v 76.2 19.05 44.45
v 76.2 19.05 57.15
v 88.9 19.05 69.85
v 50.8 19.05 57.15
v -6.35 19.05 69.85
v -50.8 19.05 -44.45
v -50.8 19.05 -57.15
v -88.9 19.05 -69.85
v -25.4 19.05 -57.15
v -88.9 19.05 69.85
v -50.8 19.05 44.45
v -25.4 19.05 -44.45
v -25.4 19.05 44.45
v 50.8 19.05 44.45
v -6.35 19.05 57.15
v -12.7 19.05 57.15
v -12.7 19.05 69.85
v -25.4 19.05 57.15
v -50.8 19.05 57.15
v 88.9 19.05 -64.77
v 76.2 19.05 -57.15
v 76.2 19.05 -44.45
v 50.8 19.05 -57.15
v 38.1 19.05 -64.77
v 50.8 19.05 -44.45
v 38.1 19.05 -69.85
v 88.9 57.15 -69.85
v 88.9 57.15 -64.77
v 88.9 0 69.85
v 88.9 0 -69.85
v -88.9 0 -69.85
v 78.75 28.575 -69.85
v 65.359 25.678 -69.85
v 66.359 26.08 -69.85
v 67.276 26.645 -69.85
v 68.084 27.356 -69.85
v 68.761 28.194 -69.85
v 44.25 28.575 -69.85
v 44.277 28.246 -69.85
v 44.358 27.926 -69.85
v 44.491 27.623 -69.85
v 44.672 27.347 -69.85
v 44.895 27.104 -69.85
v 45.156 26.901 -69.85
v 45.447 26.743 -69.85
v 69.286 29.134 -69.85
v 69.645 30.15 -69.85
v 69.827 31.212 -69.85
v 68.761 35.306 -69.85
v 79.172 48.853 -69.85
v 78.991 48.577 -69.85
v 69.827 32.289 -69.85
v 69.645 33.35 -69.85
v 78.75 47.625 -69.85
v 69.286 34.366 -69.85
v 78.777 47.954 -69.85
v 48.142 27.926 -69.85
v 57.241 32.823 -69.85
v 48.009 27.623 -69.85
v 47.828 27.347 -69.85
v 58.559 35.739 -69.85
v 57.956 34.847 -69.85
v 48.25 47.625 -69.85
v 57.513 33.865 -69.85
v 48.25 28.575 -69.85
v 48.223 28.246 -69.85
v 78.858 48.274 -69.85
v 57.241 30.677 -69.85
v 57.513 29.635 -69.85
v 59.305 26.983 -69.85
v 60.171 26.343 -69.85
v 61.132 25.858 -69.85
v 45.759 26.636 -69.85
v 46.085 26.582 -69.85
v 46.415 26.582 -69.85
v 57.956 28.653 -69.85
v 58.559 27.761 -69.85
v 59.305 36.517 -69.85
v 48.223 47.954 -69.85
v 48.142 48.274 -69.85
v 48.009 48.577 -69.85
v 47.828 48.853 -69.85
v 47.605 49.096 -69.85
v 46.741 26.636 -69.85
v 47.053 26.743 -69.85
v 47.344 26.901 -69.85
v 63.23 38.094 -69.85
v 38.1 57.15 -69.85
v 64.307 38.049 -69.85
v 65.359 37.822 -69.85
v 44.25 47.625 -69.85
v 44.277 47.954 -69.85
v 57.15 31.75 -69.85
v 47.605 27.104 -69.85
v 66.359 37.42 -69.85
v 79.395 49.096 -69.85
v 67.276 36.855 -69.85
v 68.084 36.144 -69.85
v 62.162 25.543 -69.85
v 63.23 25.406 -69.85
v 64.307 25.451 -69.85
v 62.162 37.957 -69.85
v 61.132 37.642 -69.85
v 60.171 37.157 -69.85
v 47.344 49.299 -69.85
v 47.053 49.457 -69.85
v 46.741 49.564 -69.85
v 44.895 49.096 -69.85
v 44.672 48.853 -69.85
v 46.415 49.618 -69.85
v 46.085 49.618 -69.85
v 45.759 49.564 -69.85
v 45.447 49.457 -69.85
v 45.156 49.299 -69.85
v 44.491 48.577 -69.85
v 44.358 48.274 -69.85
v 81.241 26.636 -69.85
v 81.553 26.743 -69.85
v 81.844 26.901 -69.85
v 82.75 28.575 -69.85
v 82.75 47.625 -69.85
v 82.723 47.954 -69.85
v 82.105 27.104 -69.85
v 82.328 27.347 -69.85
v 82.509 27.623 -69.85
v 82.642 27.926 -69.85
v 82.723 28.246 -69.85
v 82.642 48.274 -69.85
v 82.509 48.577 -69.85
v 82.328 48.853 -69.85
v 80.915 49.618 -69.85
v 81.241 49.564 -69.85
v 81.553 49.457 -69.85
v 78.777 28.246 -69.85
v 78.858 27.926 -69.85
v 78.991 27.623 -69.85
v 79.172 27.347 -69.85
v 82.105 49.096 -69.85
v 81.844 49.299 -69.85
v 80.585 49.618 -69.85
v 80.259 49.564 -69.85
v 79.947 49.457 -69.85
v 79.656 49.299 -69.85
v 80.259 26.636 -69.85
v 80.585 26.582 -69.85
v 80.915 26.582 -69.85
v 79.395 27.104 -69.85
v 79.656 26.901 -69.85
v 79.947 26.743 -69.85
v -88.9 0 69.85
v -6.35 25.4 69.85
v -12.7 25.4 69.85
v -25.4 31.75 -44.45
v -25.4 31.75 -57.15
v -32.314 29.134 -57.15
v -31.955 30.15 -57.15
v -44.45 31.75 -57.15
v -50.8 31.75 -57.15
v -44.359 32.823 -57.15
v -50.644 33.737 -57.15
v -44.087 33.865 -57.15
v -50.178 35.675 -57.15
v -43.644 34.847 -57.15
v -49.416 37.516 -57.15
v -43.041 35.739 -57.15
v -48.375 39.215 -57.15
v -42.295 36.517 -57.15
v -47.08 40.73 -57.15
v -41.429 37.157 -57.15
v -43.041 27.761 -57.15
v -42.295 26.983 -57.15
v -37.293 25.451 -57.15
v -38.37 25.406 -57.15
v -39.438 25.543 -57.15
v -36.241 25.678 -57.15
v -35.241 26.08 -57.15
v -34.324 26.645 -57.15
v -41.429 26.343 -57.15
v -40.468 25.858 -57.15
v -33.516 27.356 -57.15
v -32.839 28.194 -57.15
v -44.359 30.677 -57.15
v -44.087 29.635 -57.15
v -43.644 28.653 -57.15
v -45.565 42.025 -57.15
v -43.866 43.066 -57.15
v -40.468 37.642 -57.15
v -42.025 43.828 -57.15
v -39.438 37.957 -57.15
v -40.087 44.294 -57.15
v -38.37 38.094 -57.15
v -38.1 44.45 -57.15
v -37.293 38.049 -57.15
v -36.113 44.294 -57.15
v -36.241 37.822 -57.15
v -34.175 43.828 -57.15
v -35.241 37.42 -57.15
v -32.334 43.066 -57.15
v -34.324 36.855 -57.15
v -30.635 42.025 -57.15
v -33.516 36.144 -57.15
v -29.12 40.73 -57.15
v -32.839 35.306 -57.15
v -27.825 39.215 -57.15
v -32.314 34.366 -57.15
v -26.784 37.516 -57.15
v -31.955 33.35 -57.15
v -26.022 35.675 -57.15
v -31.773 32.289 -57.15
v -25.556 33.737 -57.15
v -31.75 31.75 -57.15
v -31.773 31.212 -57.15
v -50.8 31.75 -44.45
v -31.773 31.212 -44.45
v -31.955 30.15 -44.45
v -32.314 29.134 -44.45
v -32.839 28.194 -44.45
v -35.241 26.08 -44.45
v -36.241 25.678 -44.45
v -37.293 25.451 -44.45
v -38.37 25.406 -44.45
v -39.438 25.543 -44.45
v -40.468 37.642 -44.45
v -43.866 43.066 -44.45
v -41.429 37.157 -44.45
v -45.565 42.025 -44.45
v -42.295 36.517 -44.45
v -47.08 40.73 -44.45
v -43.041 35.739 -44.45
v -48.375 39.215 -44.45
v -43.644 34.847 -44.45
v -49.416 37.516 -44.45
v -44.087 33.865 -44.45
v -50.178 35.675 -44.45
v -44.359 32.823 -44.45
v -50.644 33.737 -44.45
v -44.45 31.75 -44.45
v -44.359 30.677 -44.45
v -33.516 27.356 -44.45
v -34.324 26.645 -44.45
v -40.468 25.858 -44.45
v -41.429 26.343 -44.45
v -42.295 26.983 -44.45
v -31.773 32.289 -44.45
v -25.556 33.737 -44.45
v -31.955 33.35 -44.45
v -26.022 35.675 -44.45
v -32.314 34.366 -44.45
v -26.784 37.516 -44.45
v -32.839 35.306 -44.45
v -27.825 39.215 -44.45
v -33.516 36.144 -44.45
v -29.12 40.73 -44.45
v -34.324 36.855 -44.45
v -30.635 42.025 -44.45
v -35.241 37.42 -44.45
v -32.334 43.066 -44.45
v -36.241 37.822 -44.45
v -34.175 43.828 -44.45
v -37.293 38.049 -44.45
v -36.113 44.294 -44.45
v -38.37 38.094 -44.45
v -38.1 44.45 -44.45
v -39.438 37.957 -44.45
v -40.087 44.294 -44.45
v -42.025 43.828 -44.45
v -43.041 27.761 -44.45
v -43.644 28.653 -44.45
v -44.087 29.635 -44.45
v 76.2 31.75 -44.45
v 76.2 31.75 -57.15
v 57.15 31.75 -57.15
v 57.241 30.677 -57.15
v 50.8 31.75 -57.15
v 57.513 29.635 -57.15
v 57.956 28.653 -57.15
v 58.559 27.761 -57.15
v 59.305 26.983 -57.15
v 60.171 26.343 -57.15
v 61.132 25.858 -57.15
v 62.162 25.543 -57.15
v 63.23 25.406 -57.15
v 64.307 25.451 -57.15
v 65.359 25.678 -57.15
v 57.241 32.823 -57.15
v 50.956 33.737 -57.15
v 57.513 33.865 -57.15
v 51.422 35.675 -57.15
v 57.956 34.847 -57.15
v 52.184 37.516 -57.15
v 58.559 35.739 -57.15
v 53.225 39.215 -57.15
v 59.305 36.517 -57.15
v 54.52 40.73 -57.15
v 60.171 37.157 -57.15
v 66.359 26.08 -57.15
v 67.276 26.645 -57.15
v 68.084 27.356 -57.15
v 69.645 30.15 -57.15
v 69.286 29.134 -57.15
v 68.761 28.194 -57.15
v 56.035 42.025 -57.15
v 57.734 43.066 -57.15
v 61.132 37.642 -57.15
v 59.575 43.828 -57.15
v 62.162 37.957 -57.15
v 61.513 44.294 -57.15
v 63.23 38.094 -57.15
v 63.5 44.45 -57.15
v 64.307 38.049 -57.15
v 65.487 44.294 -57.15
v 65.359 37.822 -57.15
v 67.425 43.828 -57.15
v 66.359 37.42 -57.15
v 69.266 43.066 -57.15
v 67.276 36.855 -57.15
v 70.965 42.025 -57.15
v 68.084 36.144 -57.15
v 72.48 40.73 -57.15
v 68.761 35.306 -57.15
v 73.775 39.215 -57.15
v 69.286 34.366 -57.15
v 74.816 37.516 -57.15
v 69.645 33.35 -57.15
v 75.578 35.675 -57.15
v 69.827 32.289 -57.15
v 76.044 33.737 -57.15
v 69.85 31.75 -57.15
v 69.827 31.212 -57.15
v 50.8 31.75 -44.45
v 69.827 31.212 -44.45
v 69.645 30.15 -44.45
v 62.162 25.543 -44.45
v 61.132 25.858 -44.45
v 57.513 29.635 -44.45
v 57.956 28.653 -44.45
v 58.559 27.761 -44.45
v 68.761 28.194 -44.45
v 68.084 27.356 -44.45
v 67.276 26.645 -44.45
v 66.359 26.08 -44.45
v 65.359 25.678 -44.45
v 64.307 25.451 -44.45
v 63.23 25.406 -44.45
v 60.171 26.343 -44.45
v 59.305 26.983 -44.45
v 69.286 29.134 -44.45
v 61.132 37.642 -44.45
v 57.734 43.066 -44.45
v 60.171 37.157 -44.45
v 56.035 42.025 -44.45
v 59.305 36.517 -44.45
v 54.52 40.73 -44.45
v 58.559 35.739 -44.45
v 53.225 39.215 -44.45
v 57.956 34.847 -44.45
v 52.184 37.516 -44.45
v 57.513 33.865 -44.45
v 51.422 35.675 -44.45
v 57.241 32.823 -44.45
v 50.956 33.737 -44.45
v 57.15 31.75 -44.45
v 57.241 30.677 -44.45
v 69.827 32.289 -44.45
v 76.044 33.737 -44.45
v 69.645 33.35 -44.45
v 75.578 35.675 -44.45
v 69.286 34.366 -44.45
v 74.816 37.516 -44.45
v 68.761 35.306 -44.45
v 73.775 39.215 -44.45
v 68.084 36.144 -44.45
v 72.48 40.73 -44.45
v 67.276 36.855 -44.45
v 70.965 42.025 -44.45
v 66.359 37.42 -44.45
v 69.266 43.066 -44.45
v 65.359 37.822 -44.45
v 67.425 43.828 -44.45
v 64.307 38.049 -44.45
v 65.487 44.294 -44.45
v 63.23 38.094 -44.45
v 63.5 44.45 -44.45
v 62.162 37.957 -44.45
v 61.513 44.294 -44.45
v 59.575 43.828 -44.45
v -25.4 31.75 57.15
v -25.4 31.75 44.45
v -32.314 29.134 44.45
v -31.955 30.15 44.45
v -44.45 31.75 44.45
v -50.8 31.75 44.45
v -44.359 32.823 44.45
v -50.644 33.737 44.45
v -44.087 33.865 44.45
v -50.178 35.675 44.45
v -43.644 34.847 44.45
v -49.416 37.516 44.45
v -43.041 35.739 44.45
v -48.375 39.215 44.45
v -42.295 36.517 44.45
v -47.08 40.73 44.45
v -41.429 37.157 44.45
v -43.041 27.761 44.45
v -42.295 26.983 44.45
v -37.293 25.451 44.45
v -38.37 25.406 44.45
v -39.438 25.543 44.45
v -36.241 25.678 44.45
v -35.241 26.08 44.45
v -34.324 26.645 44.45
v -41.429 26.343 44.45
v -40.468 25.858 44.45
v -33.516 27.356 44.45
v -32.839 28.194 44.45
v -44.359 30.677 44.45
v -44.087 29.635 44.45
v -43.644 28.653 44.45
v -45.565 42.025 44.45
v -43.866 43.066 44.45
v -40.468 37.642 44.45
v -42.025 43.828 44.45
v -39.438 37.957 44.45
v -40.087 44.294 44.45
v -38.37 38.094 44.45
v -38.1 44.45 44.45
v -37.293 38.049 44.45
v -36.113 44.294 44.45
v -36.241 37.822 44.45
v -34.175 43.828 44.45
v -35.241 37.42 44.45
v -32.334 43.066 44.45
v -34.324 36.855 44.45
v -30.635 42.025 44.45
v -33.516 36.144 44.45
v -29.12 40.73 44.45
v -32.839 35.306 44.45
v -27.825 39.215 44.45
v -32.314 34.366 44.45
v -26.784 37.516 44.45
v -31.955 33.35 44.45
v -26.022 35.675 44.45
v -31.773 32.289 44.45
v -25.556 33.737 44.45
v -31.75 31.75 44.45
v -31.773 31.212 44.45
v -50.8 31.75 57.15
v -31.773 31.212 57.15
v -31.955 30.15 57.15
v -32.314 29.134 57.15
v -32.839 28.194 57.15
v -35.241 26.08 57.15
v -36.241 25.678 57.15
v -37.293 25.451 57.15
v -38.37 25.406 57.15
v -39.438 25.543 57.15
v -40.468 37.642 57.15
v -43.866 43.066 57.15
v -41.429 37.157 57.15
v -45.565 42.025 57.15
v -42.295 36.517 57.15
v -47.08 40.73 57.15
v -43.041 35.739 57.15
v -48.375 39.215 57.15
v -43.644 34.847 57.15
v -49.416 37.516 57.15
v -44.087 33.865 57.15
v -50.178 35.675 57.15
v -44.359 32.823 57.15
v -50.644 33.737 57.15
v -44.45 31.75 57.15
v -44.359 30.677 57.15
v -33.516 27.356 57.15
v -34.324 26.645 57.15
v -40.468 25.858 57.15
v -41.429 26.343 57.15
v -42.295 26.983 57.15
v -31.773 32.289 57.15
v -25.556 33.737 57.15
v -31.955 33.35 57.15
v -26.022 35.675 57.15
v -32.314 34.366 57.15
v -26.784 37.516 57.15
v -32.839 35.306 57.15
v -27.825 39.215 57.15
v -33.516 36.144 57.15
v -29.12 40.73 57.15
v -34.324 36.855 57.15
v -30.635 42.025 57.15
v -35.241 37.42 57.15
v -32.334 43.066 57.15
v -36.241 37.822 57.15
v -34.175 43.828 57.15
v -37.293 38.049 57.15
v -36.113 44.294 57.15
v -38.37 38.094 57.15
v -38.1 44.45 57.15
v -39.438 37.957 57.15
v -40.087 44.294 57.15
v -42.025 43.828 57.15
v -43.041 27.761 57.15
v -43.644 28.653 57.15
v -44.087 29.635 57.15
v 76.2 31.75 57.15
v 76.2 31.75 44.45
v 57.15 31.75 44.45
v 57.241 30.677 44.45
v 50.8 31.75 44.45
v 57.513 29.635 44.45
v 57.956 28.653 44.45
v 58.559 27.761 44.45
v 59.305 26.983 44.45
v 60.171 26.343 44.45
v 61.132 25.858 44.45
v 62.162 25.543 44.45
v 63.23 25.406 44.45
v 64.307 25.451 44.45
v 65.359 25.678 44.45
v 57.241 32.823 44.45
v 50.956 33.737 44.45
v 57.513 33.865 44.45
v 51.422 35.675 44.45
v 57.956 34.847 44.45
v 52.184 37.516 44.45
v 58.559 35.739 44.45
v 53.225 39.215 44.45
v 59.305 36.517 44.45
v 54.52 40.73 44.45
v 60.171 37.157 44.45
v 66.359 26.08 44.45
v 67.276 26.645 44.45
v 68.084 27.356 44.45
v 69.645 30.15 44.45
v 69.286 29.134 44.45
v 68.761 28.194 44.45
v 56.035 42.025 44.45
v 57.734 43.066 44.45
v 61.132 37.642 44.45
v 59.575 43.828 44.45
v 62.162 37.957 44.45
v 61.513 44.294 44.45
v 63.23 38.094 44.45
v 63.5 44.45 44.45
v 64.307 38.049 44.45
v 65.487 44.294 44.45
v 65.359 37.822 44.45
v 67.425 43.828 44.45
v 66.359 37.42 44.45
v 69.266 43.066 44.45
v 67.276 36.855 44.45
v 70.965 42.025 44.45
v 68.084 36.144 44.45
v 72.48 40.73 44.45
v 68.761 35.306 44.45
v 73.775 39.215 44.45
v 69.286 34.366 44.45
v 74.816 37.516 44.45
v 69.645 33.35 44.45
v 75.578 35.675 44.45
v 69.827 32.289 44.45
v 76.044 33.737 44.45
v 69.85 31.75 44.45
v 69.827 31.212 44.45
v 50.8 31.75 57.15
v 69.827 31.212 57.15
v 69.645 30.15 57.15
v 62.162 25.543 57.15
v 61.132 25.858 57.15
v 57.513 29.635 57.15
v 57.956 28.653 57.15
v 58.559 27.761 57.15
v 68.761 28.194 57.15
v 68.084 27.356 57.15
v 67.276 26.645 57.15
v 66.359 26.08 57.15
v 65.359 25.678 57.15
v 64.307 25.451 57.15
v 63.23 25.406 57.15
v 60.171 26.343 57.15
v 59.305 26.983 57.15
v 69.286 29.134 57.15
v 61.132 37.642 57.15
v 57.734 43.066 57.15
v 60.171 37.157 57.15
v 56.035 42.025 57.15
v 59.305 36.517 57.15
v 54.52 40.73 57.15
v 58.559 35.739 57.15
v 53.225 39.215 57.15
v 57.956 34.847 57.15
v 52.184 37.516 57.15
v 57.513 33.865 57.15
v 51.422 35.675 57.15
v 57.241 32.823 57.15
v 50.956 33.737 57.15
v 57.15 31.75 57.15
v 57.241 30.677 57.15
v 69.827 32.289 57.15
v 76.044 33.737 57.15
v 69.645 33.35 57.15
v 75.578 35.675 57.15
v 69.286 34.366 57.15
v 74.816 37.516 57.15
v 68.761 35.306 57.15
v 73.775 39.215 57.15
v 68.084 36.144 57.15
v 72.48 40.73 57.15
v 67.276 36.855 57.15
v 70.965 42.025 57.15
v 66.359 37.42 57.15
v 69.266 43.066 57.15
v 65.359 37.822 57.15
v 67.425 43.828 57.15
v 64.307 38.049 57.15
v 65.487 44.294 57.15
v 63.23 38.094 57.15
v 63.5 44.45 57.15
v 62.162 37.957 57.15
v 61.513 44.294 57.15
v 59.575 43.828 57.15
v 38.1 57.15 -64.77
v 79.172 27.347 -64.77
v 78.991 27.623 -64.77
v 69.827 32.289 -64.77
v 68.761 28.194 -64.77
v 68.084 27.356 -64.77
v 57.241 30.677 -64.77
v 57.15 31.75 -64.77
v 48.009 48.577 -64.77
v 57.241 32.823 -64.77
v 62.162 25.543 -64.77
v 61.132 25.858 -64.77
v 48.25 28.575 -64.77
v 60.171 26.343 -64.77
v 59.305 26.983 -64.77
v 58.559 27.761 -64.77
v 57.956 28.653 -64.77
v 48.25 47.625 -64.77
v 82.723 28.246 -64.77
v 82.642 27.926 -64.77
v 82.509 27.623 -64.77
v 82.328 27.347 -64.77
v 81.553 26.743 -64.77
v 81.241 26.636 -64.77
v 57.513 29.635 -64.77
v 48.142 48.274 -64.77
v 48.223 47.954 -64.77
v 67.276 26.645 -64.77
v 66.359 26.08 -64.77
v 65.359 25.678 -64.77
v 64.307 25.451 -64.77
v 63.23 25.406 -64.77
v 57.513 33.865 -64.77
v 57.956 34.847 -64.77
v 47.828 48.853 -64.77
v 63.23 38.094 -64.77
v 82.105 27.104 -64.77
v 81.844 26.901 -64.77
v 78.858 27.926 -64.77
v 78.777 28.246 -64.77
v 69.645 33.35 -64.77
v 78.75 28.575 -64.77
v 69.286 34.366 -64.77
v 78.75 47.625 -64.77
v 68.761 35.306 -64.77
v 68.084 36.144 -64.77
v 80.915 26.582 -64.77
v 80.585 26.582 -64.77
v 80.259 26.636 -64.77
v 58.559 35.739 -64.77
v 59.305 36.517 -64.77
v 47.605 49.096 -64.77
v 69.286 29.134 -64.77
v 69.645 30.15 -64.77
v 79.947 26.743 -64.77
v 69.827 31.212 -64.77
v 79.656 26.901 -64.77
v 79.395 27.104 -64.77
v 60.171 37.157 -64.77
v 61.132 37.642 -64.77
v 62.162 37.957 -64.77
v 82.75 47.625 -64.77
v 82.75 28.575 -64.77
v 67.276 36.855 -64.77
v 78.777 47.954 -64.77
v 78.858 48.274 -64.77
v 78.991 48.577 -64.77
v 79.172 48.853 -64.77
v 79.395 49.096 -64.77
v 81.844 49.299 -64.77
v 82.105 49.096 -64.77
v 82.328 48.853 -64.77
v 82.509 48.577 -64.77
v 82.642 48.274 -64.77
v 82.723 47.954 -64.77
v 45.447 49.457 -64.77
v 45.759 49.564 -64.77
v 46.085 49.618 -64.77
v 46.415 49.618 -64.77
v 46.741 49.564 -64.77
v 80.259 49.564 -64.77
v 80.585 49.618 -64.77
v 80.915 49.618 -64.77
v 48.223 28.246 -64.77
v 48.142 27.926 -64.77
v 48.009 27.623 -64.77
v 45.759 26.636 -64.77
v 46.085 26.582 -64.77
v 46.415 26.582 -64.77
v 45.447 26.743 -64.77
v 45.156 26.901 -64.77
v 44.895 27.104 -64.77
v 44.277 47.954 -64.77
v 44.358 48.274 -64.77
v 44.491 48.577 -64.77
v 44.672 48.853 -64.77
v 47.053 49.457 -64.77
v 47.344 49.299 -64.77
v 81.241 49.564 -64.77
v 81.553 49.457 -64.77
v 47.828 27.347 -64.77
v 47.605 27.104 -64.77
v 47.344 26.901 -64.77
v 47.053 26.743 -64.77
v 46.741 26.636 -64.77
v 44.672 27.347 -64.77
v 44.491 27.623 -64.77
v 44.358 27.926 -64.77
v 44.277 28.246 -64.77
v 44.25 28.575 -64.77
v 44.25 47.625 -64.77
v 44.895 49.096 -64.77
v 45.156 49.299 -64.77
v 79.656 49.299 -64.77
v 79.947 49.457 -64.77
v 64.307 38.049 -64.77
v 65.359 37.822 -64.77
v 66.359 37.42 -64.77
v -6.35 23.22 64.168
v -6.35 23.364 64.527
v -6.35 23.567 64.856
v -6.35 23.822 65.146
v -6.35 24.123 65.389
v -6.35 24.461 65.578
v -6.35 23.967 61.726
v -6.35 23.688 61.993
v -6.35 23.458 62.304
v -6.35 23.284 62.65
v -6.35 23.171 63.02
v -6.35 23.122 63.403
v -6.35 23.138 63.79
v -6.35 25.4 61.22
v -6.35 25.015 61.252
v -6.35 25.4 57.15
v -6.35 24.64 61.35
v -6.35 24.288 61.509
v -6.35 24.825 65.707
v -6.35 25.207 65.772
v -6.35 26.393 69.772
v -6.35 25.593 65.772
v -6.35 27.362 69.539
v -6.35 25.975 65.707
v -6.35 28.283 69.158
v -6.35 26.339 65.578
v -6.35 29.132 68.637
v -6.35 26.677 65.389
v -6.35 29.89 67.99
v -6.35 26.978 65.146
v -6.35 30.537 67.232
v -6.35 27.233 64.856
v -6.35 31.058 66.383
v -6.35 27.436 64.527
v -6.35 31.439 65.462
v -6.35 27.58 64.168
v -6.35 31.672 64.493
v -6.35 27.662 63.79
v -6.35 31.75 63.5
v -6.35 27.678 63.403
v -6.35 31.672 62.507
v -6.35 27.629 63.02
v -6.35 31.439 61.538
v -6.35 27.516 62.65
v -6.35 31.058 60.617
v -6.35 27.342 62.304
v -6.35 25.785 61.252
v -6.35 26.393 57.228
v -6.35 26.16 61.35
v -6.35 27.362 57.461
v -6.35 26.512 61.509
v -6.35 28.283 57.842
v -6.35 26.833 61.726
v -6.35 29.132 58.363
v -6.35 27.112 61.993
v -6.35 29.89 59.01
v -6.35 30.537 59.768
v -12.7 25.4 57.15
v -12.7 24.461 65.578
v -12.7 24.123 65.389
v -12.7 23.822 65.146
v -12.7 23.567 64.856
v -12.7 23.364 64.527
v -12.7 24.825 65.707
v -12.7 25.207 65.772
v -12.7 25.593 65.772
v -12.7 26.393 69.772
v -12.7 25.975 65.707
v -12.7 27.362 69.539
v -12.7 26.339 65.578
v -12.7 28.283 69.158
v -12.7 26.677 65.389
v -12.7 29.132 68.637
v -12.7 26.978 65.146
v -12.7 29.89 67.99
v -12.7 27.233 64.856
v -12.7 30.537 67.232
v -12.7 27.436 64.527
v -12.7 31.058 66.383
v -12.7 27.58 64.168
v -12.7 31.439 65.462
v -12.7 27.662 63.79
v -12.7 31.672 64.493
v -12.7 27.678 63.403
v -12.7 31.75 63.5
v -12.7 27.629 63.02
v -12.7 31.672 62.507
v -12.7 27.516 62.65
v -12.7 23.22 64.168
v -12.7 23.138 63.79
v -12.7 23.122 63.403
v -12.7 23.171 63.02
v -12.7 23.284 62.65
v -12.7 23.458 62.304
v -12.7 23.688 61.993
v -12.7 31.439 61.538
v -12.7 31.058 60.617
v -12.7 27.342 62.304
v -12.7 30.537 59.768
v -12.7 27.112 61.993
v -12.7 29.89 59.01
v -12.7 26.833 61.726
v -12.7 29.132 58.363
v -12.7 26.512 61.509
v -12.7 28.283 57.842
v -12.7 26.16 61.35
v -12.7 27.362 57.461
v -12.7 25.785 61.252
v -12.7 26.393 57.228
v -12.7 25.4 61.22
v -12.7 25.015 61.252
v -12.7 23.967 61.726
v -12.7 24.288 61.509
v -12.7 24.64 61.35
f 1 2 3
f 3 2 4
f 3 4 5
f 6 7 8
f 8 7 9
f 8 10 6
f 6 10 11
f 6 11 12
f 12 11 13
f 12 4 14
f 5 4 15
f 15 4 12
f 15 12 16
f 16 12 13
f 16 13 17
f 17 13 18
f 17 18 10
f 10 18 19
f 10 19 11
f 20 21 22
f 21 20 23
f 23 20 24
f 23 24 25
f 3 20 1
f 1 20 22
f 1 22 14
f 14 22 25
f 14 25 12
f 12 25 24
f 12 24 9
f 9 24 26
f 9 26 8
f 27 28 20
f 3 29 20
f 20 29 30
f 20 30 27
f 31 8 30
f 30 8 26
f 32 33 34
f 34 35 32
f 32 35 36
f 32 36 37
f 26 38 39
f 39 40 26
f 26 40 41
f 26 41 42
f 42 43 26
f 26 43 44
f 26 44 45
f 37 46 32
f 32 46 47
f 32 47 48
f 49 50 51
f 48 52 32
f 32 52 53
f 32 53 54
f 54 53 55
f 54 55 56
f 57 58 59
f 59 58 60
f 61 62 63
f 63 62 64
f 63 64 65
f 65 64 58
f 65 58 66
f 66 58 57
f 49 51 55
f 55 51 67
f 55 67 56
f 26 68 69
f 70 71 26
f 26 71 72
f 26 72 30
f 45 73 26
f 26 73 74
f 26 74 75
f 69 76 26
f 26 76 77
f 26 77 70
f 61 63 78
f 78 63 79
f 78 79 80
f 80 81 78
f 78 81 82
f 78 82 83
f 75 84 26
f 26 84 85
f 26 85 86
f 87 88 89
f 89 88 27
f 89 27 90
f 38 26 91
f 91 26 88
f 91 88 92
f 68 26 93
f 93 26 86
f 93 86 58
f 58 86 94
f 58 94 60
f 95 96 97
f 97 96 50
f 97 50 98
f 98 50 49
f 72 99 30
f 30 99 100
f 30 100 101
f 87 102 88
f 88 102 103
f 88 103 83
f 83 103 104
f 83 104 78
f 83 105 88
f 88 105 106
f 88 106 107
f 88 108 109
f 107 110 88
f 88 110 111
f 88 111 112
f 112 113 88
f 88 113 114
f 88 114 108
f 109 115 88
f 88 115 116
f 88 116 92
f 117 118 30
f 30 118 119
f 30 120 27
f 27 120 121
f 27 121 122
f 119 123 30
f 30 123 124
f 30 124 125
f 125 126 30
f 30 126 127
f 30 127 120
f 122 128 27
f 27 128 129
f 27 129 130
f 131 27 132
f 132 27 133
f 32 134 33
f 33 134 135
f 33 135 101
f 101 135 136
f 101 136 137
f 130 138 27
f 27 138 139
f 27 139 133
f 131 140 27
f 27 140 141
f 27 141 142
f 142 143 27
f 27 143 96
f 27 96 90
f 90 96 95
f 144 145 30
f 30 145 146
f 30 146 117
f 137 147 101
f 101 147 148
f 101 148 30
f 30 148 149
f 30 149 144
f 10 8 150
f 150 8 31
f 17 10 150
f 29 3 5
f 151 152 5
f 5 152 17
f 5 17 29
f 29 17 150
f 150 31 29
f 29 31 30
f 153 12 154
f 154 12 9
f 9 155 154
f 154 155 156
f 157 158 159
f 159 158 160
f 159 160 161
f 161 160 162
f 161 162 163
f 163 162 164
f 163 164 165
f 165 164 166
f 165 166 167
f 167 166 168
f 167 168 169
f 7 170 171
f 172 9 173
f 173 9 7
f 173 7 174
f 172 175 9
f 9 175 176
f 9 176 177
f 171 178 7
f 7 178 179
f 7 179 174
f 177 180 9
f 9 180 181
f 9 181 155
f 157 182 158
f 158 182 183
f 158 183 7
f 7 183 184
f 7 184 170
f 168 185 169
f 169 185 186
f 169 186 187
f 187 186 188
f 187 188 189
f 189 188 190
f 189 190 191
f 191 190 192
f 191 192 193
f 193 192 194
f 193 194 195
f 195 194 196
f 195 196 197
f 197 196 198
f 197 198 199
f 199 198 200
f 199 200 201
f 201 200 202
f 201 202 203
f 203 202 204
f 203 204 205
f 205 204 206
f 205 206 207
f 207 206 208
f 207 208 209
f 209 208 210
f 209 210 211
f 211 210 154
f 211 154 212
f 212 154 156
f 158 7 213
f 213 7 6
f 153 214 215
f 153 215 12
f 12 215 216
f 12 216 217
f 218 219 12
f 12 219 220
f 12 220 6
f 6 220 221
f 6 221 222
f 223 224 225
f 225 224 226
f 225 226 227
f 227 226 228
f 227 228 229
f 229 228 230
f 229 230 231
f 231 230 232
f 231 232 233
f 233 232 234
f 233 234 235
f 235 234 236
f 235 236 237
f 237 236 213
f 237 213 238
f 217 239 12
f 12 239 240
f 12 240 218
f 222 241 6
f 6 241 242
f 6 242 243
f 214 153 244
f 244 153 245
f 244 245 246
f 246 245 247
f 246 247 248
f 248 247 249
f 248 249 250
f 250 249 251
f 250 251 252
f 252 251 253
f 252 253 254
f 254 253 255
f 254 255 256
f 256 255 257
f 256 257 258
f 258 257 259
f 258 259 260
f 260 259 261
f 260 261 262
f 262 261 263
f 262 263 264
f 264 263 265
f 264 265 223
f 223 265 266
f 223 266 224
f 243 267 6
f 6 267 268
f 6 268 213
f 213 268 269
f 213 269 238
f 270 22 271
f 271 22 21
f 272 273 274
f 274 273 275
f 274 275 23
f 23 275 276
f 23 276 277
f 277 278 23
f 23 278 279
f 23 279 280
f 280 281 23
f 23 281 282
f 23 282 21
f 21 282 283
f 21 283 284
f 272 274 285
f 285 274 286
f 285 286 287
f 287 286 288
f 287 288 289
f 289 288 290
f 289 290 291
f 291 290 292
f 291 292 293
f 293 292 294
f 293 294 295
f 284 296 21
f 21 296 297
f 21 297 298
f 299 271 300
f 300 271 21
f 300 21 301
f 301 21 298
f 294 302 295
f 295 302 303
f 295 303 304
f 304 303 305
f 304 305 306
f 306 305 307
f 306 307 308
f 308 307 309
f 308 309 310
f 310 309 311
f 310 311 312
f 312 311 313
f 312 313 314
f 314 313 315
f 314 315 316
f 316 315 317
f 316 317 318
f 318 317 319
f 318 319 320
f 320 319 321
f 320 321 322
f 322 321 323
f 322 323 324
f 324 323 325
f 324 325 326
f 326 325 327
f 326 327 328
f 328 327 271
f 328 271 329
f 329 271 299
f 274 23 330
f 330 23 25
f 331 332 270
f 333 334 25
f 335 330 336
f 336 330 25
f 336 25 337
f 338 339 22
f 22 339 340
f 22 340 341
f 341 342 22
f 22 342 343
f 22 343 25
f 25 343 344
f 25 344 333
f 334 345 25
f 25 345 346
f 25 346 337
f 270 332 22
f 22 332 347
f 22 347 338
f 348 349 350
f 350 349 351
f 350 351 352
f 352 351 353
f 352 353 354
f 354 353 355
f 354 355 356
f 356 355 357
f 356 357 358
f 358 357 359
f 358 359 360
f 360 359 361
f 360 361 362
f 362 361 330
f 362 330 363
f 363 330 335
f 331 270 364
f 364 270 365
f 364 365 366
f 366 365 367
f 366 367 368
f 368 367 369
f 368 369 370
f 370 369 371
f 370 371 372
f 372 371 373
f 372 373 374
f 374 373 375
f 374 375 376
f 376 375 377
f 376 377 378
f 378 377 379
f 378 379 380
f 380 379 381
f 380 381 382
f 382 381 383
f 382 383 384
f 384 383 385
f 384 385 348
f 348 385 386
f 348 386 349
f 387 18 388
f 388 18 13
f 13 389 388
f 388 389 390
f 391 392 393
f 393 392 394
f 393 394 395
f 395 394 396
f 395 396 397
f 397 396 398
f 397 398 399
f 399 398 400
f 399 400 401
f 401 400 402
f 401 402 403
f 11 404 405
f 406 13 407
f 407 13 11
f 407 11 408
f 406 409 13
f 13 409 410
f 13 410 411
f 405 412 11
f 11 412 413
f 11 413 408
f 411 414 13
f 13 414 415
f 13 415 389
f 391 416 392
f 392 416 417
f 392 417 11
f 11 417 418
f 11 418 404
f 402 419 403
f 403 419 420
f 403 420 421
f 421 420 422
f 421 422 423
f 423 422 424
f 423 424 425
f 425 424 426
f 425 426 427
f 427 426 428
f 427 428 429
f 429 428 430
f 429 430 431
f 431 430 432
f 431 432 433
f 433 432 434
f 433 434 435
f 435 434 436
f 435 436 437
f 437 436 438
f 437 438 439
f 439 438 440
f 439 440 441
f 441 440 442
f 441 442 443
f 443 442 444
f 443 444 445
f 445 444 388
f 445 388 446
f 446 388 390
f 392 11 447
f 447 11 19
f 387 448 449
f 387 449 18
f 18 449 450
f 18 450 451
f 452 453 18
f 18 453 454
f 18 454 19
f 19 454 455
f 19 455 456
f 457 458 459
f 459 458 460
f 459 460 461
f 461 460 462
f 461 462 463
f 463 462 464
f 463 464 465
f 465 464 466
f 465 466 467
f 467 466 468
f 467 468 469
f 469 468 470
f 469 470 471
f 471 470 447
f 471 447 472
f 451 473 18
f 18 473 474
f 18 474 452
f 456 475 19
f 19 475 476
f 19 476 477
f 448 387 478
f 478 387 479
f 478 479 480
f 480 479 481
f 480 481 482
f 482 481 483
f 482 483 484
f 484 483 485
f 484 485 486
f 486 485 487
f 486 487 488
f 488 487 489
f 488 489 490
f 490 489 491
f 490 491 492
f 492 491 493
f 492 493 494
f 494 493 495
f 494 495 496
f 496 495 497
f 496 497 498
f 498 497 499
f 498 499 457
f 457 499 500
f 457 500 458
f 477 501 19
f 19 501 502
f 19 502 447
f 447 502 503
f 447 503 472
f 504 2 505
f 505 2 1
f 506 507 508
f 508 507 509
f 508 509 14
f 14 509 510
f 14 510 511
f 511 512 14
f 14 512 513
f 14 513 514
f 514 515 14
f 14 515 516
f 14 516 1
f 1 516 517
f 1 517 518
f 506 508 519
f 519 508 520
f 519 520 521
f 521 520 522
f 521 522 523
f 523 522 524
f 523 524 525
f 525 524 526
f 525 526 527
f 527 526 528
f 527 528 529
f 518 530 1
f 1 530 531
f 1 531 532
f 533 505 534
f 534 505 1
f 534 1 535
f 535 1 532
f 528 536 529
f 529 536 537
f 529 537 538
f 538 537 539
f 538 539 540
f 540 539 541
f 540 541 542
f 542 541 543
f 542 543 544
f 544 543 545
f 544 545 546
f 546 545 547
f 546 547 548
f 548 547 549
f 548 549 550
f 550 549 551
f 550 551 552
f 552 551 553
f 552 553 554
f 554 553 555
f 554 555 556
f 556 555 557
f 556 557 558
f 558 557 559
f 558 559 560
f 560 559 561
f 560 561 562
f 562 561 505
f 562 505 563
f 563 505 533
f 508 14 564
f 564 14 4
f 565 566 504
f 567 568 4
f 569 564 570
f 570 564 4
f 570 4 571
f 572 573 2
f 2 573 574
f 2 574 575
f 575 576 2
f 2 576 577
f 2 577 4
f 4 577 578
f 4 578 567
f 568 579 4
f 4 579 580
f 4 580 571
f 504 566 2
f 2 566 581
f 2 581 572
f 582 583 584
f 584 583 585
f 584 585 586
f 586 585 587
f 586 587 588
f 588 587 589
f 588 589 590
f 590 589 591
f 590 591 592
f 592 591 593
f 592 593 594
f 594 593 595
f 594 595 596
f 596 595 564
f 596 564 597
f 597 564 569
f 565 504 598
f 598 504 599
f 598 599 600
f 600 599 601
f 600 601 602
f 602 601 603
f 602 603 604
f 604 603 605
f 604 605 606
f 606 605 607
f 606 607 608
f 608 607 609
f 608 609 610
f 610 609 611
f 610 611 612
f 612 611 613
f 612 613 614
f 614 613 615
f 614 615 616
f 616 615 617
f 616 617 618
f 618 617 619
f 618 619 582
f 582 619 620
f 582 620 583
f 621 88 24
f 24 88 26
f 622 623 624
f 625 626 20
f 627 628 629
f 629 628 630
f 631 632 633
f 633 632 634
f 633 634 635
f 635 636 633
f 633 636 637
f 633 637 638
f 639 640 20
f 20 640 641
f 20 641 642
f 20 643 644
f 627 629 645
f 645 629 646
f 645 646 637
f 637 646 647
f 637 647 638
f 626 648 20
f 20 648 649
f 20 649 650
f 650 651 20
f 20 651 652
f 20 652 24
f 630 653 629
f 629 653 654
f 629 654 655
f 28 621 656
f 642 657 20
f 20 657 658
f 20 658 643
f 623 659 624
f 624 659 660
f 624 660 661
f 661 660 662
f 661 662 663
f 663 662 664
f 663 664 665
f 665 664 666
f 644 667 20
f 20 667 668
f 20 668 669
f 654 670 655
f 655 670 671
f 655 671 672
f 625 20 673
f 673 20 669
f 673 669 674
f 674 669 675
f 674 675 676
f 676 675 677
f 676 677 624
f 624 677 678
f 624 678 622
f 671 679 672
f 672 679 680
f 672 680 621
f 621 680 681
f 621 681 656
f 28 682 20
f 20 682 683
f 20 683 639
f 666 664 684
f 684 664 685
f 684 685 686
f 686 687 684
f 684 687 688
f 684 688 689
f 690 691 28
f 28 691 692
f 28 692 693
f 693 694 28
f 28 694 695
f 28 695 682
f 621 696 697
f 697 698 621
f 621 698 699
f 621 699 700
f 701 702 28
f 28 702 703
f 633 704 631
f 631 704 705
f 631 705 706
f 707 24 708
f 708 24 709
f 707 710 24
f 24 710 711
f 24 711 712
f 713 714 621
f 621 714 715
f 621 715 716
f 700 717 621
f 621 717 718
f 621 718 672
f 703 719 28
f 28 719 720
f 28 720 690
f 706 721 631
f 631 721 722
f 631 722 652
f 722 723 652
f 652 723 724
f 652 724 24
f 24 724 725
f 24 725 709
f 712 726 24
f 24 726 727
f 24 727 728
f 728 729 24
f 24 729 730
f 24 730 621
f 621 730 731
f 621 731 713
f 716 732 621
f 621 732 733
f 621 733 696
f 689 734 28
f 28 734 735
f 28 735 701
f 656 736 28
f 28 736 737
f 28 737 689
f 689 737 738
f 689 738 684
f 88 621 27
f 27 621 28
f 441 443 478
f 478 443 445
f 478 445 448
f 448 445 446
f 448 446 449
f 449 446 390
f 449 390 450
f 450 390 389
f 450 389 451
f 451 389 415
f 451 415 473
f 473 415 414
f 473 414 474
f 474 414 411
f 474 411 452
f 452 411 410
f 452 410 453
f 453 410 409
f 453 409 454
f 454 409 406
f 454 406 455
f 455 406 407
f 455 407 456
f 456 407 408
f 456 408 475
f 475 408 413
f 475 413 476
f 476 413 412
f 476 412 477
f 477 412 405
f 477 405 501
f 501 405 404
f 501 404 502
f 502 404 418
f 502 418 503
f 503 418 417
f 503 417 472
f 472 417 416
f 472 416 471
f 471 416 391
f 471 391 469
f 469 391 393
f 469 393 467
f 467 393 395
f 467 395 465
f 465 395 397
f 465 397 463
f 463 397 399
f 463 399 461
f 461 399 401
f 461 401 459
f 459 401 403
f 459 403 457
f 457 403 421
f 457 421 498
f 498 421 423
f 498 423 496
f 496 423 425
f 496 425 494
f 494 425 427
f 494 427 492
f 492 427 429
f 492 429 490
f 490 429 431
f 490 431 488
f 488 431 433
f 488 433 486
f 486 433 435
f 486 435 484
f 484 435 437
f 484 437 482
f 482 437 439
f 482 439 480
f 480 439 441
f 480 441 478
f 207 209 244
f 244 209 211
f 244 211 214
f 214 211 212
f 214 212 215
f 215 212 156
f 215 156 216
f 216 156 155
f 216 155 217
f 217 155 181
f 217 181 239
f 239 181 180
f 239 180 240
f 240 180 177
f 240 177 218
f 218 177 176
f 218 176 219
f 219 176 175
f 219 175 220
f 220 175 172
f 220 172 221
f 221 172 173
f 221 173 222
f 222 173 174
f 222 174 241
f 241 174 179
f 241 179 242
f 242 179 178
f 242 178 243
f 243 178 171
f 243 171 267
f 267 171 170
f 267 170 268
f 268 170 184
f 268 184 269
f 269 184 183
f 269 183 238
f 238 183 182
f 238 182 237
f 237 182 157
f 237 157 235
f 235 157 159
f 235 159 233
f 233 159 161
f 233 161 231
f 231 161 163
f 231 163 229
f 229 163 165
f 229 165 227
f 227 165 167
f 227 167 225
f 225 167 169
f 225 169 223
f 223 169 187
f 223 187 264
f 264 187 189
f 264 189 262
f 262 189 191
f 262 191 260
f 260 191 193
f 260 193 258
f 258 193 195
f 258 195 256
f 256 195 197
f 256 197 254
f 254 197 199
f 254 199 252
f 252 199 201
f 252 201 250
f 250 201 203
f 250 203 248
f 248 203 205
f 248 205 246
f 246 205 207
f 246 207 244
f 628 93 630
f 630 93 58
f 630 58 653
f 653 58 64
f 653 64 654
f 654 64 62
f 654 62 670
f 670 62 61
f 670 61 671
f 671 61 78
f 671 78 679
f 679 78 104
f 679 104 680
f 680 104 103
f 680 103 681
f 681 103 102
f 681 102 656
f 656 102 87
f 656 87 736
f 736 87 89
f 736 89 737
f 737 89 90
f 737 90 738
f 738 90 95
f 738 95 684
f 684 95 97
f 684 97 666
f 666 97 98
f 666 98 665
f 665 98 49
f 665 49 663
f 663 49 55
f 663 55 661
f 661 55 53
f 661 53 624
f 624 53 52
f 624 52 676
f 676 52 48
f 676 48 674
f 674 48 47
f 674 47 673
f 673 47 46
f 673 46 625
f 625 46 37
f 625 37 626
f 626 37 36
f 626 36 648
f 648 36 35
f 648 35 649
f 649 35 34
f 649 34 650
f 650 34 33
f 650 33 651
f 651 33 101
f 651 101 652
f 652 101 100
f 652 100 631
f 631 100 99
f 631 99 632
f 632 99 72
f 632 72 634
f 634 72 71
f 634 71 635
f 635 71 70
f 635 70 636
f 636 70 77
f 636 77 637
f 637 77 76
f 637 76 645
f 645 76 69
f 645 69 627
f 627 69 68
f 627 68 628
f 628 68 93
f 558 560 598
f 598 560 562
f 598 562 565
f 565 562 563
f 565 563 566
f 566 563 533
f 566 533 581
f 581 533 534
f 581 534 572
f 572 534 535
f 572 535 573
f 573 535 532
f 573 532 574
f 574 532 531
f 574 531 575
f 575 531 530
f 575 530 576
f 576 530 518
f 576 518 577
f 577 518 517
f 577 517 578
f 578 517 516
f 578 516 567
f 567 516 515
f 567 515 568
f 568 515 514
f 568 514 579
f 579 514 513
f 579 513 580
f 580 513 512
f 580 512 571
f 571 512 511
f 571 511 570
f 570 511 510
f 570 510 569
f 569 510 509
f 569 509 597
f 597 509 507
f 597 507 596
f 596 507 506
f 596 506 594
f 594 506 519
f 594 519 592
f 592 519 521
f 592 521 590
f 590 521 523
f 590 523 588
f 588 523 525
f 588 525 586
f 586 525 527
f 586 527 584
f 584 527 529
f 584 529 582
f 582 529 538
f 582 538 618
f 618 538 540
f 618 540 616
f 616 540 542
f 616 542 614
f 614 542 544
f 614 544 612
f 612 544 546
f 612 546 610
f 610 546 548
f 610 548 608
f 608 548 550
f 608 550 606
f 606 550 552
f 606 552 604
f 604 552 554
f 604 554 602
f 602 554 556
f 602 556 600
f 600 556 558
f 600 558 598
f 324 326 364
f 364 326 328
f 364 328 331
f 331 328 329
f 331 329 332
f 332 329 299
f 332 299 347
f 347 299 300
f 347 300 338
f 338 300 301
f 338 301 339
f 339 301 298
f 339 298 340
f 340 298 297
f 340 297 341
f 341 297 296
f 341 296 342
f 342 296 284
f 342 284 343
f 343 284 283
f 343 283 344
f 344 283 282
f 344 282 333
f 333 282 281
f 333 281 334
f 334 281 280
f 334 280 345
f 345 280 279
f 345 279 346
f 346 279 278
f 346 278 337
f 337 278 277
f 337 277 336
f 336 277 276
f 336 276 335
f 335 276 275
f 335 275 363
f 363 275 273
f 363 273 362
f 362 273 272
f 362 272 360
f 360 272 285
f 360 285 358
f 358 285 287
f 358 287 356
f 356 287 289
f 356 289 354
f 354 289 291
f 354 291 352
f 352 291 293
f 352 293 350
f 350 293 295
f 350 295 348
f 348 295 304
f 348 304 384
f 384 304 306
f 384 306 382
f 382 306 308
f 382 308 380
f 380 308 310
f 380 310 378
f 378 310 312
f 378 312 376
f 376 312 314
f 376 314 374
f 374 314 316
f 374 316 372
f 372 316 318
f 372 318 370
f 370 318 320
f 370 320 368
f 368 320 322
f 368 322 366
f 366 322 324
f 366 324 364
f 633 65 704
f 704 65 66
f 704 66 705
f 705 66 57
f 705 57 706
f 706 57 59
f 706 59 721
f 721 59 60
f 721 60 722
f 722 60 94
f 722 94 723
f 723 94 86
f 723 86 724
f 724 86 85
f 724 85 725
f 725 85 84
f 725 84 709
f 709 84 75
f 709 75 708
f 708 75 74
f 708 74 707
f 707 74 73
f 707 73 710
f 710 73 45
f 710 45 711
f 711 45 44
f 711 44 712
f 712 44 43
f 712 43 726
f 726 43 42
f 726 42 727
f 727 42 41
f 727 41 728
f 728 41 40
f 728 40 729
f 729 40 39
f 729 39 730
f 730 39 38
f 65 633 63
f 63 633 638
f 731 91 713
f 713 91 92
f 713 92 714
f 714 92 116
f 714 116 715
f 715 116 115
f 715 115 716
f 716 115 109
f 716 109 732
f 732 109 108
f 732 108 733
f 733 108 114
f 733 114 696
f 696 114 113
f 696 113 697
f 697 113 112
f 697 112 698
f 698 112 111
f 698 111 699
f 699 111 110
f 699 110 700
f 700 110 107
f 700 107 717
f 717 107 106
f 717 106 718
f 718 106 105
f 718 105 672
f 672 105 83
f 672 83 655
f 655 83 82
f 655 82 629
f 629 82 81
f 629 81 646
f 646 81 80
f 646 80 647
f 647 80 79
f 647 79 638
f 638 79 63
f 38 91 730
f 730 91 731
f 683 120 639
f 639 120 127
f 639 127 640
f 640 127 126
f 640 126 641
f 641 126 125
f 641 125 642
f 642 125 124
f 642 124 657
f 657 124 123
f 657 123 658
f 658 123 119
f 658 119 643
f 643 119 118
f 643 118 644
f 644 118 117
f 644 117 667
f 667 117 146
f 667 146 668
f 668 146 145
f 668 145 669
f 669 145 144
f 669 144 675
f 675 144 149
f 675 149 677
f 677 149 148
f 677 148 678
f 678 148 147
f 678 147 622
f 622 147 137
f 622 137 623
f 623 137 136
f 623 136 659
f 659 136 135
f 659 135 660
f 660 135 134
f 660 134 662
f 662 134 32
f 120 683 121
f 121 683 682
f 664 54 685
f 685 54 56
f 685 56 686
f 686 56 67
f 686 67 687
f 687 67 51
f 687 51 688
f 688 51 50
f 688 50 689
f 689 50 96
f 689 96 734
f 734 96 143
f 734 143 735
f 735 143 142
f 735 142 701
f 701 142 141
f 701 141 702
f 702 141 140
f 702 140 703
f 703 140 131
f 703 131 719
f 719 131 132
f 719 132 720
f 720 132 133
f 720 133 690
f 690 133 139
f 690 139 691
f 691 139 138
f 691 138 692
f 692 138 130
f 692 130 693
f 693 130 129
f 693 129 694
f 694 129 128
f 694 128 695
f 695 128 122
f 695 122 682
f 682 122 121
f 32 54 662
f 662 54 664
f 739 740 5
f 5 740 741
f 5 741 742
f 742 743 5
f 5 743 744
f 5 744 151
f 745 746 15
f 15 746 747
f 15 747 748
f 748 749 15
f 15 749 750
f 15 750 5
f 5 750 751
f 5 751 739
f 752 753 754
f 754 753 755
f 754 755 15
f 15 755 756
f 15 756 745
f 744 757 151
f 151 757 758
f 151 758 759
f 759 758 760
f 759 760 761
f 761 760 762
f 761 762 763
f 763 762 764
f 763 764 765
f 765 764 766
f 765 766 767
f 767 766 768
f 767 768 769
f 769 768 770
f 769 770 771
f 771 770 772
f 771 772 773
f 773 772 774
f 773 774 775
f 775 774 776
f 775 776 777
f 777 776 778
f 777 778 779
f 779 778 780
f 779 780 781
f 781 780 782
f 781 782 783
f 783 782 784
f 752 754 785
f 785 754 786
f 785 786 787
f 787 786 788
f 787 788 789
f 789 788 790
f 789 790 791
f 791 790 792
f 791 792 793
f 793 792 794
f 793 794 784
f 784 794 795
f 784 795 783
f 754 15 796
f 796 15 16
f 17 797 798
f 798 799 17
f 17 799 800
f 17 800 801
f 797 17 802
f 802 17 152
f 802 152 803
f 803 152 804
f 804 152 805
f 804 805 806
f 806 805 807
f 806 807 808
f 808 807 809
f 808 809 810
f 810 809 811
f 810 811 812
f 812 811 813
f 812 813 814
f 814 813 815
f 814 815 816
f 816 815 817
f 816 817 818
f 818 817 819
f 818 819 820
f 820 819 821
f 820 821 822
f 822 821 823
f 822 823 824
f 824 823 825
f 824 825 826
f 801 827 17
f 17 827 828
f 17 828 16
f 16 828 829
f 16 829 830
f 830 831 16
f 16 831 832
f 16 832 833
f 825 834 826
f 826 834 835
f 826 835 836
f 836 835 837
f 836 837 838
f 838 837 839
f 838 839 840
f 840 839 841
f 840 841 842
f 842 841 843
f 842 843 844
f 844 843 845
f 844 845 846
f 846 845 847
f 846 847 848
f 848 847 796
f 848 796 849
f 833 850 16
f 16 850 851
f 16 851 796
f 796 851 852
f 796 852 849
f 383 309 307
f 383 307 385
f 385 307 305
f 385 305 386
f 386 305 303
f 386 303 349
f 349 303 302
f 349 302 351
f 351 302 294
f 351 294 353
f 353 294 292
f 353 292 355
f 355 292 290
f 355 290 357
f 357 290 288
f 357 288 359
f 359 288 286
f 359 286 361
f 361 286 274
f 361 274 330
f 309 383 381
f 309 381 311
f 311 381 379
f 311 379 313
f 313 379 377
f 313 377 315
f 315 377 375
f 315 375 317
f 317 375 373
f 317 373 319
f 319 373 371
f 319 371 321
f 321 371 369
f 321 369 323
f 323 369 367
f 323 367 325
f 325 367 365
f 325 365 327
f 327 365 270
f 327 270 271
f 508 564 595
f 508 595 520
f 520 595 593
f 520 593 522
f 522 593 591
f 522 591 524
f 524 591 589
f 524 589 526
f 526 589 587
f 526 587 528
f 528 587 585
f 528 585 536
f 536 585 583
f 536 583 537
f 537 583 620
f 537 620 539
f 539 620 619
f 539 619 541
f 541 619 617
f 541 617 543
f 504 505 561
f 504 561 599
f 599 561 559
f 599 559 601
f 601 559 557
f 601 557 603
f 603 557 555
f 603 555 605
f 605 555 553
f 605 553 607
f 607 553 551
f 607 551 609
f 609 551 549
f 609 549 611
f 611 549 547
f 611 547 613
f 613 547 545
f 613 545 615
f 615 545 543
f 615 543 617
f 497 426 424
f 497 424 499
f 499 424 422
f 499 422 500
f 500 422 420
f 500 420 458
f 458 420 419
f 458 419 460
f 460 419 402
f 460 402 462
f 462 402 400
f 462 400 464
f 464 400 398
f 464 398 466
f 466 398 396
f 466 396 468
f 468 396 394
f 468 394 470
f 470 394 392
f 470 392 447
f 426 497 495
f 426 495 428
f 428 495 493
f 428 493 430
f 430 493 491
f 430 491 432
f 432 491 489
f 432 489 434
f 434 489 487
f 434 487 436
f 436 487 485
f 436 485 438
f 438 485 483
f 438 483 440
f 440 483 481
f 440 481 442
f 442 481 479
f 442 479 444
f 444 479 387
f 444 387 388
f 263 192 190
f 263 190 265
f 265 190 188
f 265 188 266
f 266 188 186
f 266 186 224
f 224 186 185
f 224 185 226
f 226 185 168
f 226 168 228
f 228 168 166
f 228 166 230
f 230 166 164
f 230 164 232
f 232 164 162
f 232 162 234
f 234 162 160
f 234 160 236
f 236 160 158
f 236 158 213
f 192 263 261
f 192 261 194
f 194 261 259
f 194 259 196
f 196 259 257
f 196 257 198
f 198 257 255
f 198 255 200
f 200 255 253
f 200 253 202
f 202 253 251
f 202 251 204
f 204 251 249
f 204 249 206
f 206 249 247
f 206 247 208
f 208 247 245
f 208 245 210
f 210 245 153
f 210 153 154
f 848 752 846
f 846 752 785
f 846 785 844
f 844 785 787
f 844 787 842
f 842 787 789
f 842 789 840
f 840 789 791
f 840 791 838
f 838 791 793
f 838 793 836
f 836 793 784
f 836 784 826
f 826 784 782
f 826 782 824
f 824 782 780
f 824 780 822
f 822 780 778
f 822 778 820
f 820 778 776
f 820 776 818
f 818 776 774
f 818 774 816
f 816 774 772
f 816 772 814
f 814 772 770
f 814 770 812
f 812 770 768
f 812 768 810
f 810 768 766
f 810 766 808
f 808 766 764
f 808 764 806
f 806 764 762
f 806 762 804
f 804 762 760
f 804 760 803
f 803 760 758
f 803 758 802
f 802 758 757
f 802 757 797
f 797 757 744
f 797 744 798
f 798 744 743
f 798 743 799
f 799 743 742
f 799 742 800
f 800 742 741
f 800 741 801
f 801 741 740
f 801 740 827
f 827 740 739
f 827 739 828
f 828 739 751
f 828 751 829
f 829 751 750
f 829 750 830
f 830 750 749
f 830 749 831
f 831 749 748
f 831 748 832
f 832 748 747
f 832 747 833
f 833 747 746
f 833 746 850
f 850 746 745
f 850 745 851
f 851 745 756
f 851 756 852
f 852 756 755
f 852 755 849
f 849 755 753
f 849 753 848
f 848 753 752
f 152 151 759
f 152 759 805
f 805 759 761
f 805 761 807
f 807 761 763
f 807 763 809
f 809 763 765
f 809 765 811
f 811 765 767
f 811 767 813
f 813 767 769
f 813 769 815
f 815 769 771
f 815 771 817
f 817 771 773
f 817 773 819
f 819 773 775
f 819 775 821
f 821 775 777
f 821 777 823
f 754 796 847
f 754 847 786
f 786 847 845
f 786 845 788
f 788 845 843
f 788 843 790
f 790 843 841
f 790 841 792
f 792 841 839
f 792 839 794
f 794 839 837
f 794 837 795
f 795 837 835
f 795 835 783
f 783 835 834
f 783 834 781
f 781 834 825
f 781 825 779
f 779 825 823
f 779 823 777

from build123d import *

# Parameters (mm, degrees)
SKETCH1_W               = 177.8
SKETCH1_H               = 139.7
BOSS_EXTRUDE1_DEPTH     = 19.05
SKETCH3_W               = 25.4
SKETCH3_H               = 12.7
BOSS_EXTRUDE2_DEPTH     = 25.4
SKETCH5_W               = 50.8
SKETCH5_H               = 5.08
BOSS_EXTRUDE3_DEPTH     = 38.1
CUT_EXTRUDE1_DEPTH      = 156.672163536
CUT_EXTRUDE1_DEPTH_BACK = 156.672163536
SKETCH4_R               = 6.35
CUT_EXTRUDE2_REACH      = 177.173
SKETCH7_W               = 6.35
SKETCH7_H               = 12.7
BOSS_EXTRUDE4_DEPTH     = 12.7
FILLET1_R               = 12.7
CUT_EXTRUDE3_REACH      = 133.216
SKETCH8_R               = 2.280315524
FILLET2_R               = 6.35


with BuildPart() as part:
    # Sketch1 → Boss-Extrude1 (new body)
    with BuildSketch(Plane(origin=(0, 0, 0), x_dir=(1, 0, 0), z_dir=(0, 1, 0))):
        Rectangle(SKETCH1_W, SKETCH1_H)
    extrude(amount=BOSS_EXTRUDE1_DEPTH)

    # Sketch3 → Boss-Extrude2 (add)
    with BuildSketch(Plane(origin=(0, 19.05, 0), x_dir=(1, 0, 0), z_dir=(0, 1, 0))):
        with Locations((-38.1, 50.8)):
            Rectangle(SKETCH3_W, SKETCH3_H)
        with Locations((63.5, 50.8)):
            Rectangle(SKETCH3_W, SKETCH3_H)
        with Locations((-38.1, -50.8)):
            Rectangle(SKETCH3_W, SKETCH3_H)
        with Locations((63.5, -50.8)):
            Rectangle(SKETCH3_W, SKETCH3_H)
    extrude(amount=BOSS_EXTRUDE2_DEPTH)

    # Sketch5 → Boss-Extrude3 (add)
    with BuildSketch(Plane(origin=(0, 19.05, 0), x_dir=(1, 0, 0), z_dir=(0, 1, 0))):
        with Locations((63.5, 67.31)):
            Rectangle(SKETCH5_W, SKETCH5_H)
    extrude(amount=BOSS_EXTRUDE3_DEPTH)

    # Sketch4 → Cut-Extrude1 (cut, two sides: drawn at the far end of the back side and taken through both)
    with BuildSketch(Plane(origin=(0, 0, 44.45), x_dir=(-1, 0, 0), z_dir=(0, 0, -1)).offset(-CUT_EXTRUDE1_DEPTH_BACK)):
        with Locations((38.1, 31.75)):
            Circle(SKETCH4_R)
        with Locations((-63.5, 31.75)):
            Circle(SKETCH4_R)
    extrude(amount=CUT_EXTRUDE1_DEPTH + CUT_EXTRUDE1_DEPTH_BACK, mode=Mode.SUBTRACT)

    # Sketch6 → Cut-Extrude2 (cut, up to next)
    with BuildSketch(Plane(origin=(0, 0, -69.85), x_dir=(-1, 0, 0), z_dir=(0, 0, -1)), mode=Mode.PRIVATE) as cut_extrude2_sk1:
        with BuildLine():
            Line((-48.25, 28.575), (-48.25, 47.625))
            ThreePointArc((-48.25, 47.625), (-46.25, 49.625), (-44.25, 47.625))
            Line((-44.25, 47.625), (-44.25, 28.575))
            ThreePointArc((-44.25, 28.575), (-46.25, 26.575), (-48.25, 28.575))
        make_face()
    cut_extrude2_tool1 = extrude(cut_extrude2_sk1.sketch, amount=-CUT_EXTRUDE2_REACH, mode=Mode.PRIVATE) & part.part
    # Sketch6 → Cut-Extrude2 (cut, up to next)
    with BuildSketch(Plane(origin=(0, 0, -69.85), x_dir=(-1, 0, 0), z_dir=(0, 0, -1)), mode=Mode.PRIVATE) as cut_extrude2_sk2:
        with BuildLine():
            Line((-82.75, 28.575), (-82.75, 47.625))
            ThreePointArc((-82.75, 47.625), (-80.75, 49.625), (-78.75, 47.625))
            Line((-78.75, 47.625), (-78.75, 28.575))
            ThreePointArc((-78.75, 28.575), (-80.75, 26.575), (-82.75, 28.575))
        make_face()
    cut_extrude2_tool2 = extrude(cut_extrude2_sk2.sketch, amount=-CUT_EXTRUDE2_REACH, mode=Mode.PRIVATE) & part.part
    add(cut_extrude2_tool1.solids().sort_by_distance((46.25, 38.1, -69.85))[0], mode=Mode.SUBTRACT)
    add(cut_extrude2_tool2.solids().sort_by_distance((80.75, 38.1, -69.85))[0], mode=Mode.SUBTRACT)

    # Sketch7 → Boss-Extrude4 (add)
    with BuildSketch(Plane(origin=(0, 19.05, 0), x_dir=(1, 0, 0), z_dir=(0, 1, 0))):
        with Locations((-9.525, -63.5)):
            Rectangle(SKETCH7_W, SKETCH7_H)
    extrude(amount=BOSS_EXTRUDE4_DEPTH)

    # Fillet1
    fillet1_edges = [part.edges().sort_by_distance(p)[0] for p in [
        (76.2, 44.45, -50.8),
        (50.8, 44.45, -50.8),
        (76.2, 44.45, 50.8),
        (50.8, 44.45, 50.8),
        (-25.4, 44.45, 50.8),
        (-50.8, 44.45, 50.8),
        (-25.4, 44.45, -50.8),
        (-50.8, 44.45, -50.8),
    ]]
    fillet(fillet1_edges, radius=FILLET1_R - 0.0001)  # a hair under: the kernel refuses the full size

    # Sketch8 → Cut-Extrude3 (cut, up to next)
    with BuildSketch(Plane(origin=(-6.35, 0, 0), x_dir=(0, 0, -1), z_dir=(1, 0, 0)), mode=Mode.PRIVATE) as cut_extrude3_sk1:
        with Locations((-63.5, 25.4)):
            Circle(SKETCH8_R)
    cut_extrude3_tool1 = extrude(cut_extrude3_sk1.sketch, amount=-CUT_EXTRUDE3_REACH, mode=Mode.PRIVATE) & part.part
    add(cut_extrude3_tool1.solids().sort_by_distance((-6.35, 25.4, 63.5))[0], mode=Mode.SUBTRACT)

    # Fillet2
    fillet2_edges = [part.edges().sort_by_distance(p)[0] for p in [
        (-9.525, 31.75, 57.15),
        (-9.525, 31.75, 69.85),
    ]]
    fillet(fillet2_edges, radius=FILLET2_R - 0.0001)  # a hair under: the kernel refuses the full size


solid = part.part
